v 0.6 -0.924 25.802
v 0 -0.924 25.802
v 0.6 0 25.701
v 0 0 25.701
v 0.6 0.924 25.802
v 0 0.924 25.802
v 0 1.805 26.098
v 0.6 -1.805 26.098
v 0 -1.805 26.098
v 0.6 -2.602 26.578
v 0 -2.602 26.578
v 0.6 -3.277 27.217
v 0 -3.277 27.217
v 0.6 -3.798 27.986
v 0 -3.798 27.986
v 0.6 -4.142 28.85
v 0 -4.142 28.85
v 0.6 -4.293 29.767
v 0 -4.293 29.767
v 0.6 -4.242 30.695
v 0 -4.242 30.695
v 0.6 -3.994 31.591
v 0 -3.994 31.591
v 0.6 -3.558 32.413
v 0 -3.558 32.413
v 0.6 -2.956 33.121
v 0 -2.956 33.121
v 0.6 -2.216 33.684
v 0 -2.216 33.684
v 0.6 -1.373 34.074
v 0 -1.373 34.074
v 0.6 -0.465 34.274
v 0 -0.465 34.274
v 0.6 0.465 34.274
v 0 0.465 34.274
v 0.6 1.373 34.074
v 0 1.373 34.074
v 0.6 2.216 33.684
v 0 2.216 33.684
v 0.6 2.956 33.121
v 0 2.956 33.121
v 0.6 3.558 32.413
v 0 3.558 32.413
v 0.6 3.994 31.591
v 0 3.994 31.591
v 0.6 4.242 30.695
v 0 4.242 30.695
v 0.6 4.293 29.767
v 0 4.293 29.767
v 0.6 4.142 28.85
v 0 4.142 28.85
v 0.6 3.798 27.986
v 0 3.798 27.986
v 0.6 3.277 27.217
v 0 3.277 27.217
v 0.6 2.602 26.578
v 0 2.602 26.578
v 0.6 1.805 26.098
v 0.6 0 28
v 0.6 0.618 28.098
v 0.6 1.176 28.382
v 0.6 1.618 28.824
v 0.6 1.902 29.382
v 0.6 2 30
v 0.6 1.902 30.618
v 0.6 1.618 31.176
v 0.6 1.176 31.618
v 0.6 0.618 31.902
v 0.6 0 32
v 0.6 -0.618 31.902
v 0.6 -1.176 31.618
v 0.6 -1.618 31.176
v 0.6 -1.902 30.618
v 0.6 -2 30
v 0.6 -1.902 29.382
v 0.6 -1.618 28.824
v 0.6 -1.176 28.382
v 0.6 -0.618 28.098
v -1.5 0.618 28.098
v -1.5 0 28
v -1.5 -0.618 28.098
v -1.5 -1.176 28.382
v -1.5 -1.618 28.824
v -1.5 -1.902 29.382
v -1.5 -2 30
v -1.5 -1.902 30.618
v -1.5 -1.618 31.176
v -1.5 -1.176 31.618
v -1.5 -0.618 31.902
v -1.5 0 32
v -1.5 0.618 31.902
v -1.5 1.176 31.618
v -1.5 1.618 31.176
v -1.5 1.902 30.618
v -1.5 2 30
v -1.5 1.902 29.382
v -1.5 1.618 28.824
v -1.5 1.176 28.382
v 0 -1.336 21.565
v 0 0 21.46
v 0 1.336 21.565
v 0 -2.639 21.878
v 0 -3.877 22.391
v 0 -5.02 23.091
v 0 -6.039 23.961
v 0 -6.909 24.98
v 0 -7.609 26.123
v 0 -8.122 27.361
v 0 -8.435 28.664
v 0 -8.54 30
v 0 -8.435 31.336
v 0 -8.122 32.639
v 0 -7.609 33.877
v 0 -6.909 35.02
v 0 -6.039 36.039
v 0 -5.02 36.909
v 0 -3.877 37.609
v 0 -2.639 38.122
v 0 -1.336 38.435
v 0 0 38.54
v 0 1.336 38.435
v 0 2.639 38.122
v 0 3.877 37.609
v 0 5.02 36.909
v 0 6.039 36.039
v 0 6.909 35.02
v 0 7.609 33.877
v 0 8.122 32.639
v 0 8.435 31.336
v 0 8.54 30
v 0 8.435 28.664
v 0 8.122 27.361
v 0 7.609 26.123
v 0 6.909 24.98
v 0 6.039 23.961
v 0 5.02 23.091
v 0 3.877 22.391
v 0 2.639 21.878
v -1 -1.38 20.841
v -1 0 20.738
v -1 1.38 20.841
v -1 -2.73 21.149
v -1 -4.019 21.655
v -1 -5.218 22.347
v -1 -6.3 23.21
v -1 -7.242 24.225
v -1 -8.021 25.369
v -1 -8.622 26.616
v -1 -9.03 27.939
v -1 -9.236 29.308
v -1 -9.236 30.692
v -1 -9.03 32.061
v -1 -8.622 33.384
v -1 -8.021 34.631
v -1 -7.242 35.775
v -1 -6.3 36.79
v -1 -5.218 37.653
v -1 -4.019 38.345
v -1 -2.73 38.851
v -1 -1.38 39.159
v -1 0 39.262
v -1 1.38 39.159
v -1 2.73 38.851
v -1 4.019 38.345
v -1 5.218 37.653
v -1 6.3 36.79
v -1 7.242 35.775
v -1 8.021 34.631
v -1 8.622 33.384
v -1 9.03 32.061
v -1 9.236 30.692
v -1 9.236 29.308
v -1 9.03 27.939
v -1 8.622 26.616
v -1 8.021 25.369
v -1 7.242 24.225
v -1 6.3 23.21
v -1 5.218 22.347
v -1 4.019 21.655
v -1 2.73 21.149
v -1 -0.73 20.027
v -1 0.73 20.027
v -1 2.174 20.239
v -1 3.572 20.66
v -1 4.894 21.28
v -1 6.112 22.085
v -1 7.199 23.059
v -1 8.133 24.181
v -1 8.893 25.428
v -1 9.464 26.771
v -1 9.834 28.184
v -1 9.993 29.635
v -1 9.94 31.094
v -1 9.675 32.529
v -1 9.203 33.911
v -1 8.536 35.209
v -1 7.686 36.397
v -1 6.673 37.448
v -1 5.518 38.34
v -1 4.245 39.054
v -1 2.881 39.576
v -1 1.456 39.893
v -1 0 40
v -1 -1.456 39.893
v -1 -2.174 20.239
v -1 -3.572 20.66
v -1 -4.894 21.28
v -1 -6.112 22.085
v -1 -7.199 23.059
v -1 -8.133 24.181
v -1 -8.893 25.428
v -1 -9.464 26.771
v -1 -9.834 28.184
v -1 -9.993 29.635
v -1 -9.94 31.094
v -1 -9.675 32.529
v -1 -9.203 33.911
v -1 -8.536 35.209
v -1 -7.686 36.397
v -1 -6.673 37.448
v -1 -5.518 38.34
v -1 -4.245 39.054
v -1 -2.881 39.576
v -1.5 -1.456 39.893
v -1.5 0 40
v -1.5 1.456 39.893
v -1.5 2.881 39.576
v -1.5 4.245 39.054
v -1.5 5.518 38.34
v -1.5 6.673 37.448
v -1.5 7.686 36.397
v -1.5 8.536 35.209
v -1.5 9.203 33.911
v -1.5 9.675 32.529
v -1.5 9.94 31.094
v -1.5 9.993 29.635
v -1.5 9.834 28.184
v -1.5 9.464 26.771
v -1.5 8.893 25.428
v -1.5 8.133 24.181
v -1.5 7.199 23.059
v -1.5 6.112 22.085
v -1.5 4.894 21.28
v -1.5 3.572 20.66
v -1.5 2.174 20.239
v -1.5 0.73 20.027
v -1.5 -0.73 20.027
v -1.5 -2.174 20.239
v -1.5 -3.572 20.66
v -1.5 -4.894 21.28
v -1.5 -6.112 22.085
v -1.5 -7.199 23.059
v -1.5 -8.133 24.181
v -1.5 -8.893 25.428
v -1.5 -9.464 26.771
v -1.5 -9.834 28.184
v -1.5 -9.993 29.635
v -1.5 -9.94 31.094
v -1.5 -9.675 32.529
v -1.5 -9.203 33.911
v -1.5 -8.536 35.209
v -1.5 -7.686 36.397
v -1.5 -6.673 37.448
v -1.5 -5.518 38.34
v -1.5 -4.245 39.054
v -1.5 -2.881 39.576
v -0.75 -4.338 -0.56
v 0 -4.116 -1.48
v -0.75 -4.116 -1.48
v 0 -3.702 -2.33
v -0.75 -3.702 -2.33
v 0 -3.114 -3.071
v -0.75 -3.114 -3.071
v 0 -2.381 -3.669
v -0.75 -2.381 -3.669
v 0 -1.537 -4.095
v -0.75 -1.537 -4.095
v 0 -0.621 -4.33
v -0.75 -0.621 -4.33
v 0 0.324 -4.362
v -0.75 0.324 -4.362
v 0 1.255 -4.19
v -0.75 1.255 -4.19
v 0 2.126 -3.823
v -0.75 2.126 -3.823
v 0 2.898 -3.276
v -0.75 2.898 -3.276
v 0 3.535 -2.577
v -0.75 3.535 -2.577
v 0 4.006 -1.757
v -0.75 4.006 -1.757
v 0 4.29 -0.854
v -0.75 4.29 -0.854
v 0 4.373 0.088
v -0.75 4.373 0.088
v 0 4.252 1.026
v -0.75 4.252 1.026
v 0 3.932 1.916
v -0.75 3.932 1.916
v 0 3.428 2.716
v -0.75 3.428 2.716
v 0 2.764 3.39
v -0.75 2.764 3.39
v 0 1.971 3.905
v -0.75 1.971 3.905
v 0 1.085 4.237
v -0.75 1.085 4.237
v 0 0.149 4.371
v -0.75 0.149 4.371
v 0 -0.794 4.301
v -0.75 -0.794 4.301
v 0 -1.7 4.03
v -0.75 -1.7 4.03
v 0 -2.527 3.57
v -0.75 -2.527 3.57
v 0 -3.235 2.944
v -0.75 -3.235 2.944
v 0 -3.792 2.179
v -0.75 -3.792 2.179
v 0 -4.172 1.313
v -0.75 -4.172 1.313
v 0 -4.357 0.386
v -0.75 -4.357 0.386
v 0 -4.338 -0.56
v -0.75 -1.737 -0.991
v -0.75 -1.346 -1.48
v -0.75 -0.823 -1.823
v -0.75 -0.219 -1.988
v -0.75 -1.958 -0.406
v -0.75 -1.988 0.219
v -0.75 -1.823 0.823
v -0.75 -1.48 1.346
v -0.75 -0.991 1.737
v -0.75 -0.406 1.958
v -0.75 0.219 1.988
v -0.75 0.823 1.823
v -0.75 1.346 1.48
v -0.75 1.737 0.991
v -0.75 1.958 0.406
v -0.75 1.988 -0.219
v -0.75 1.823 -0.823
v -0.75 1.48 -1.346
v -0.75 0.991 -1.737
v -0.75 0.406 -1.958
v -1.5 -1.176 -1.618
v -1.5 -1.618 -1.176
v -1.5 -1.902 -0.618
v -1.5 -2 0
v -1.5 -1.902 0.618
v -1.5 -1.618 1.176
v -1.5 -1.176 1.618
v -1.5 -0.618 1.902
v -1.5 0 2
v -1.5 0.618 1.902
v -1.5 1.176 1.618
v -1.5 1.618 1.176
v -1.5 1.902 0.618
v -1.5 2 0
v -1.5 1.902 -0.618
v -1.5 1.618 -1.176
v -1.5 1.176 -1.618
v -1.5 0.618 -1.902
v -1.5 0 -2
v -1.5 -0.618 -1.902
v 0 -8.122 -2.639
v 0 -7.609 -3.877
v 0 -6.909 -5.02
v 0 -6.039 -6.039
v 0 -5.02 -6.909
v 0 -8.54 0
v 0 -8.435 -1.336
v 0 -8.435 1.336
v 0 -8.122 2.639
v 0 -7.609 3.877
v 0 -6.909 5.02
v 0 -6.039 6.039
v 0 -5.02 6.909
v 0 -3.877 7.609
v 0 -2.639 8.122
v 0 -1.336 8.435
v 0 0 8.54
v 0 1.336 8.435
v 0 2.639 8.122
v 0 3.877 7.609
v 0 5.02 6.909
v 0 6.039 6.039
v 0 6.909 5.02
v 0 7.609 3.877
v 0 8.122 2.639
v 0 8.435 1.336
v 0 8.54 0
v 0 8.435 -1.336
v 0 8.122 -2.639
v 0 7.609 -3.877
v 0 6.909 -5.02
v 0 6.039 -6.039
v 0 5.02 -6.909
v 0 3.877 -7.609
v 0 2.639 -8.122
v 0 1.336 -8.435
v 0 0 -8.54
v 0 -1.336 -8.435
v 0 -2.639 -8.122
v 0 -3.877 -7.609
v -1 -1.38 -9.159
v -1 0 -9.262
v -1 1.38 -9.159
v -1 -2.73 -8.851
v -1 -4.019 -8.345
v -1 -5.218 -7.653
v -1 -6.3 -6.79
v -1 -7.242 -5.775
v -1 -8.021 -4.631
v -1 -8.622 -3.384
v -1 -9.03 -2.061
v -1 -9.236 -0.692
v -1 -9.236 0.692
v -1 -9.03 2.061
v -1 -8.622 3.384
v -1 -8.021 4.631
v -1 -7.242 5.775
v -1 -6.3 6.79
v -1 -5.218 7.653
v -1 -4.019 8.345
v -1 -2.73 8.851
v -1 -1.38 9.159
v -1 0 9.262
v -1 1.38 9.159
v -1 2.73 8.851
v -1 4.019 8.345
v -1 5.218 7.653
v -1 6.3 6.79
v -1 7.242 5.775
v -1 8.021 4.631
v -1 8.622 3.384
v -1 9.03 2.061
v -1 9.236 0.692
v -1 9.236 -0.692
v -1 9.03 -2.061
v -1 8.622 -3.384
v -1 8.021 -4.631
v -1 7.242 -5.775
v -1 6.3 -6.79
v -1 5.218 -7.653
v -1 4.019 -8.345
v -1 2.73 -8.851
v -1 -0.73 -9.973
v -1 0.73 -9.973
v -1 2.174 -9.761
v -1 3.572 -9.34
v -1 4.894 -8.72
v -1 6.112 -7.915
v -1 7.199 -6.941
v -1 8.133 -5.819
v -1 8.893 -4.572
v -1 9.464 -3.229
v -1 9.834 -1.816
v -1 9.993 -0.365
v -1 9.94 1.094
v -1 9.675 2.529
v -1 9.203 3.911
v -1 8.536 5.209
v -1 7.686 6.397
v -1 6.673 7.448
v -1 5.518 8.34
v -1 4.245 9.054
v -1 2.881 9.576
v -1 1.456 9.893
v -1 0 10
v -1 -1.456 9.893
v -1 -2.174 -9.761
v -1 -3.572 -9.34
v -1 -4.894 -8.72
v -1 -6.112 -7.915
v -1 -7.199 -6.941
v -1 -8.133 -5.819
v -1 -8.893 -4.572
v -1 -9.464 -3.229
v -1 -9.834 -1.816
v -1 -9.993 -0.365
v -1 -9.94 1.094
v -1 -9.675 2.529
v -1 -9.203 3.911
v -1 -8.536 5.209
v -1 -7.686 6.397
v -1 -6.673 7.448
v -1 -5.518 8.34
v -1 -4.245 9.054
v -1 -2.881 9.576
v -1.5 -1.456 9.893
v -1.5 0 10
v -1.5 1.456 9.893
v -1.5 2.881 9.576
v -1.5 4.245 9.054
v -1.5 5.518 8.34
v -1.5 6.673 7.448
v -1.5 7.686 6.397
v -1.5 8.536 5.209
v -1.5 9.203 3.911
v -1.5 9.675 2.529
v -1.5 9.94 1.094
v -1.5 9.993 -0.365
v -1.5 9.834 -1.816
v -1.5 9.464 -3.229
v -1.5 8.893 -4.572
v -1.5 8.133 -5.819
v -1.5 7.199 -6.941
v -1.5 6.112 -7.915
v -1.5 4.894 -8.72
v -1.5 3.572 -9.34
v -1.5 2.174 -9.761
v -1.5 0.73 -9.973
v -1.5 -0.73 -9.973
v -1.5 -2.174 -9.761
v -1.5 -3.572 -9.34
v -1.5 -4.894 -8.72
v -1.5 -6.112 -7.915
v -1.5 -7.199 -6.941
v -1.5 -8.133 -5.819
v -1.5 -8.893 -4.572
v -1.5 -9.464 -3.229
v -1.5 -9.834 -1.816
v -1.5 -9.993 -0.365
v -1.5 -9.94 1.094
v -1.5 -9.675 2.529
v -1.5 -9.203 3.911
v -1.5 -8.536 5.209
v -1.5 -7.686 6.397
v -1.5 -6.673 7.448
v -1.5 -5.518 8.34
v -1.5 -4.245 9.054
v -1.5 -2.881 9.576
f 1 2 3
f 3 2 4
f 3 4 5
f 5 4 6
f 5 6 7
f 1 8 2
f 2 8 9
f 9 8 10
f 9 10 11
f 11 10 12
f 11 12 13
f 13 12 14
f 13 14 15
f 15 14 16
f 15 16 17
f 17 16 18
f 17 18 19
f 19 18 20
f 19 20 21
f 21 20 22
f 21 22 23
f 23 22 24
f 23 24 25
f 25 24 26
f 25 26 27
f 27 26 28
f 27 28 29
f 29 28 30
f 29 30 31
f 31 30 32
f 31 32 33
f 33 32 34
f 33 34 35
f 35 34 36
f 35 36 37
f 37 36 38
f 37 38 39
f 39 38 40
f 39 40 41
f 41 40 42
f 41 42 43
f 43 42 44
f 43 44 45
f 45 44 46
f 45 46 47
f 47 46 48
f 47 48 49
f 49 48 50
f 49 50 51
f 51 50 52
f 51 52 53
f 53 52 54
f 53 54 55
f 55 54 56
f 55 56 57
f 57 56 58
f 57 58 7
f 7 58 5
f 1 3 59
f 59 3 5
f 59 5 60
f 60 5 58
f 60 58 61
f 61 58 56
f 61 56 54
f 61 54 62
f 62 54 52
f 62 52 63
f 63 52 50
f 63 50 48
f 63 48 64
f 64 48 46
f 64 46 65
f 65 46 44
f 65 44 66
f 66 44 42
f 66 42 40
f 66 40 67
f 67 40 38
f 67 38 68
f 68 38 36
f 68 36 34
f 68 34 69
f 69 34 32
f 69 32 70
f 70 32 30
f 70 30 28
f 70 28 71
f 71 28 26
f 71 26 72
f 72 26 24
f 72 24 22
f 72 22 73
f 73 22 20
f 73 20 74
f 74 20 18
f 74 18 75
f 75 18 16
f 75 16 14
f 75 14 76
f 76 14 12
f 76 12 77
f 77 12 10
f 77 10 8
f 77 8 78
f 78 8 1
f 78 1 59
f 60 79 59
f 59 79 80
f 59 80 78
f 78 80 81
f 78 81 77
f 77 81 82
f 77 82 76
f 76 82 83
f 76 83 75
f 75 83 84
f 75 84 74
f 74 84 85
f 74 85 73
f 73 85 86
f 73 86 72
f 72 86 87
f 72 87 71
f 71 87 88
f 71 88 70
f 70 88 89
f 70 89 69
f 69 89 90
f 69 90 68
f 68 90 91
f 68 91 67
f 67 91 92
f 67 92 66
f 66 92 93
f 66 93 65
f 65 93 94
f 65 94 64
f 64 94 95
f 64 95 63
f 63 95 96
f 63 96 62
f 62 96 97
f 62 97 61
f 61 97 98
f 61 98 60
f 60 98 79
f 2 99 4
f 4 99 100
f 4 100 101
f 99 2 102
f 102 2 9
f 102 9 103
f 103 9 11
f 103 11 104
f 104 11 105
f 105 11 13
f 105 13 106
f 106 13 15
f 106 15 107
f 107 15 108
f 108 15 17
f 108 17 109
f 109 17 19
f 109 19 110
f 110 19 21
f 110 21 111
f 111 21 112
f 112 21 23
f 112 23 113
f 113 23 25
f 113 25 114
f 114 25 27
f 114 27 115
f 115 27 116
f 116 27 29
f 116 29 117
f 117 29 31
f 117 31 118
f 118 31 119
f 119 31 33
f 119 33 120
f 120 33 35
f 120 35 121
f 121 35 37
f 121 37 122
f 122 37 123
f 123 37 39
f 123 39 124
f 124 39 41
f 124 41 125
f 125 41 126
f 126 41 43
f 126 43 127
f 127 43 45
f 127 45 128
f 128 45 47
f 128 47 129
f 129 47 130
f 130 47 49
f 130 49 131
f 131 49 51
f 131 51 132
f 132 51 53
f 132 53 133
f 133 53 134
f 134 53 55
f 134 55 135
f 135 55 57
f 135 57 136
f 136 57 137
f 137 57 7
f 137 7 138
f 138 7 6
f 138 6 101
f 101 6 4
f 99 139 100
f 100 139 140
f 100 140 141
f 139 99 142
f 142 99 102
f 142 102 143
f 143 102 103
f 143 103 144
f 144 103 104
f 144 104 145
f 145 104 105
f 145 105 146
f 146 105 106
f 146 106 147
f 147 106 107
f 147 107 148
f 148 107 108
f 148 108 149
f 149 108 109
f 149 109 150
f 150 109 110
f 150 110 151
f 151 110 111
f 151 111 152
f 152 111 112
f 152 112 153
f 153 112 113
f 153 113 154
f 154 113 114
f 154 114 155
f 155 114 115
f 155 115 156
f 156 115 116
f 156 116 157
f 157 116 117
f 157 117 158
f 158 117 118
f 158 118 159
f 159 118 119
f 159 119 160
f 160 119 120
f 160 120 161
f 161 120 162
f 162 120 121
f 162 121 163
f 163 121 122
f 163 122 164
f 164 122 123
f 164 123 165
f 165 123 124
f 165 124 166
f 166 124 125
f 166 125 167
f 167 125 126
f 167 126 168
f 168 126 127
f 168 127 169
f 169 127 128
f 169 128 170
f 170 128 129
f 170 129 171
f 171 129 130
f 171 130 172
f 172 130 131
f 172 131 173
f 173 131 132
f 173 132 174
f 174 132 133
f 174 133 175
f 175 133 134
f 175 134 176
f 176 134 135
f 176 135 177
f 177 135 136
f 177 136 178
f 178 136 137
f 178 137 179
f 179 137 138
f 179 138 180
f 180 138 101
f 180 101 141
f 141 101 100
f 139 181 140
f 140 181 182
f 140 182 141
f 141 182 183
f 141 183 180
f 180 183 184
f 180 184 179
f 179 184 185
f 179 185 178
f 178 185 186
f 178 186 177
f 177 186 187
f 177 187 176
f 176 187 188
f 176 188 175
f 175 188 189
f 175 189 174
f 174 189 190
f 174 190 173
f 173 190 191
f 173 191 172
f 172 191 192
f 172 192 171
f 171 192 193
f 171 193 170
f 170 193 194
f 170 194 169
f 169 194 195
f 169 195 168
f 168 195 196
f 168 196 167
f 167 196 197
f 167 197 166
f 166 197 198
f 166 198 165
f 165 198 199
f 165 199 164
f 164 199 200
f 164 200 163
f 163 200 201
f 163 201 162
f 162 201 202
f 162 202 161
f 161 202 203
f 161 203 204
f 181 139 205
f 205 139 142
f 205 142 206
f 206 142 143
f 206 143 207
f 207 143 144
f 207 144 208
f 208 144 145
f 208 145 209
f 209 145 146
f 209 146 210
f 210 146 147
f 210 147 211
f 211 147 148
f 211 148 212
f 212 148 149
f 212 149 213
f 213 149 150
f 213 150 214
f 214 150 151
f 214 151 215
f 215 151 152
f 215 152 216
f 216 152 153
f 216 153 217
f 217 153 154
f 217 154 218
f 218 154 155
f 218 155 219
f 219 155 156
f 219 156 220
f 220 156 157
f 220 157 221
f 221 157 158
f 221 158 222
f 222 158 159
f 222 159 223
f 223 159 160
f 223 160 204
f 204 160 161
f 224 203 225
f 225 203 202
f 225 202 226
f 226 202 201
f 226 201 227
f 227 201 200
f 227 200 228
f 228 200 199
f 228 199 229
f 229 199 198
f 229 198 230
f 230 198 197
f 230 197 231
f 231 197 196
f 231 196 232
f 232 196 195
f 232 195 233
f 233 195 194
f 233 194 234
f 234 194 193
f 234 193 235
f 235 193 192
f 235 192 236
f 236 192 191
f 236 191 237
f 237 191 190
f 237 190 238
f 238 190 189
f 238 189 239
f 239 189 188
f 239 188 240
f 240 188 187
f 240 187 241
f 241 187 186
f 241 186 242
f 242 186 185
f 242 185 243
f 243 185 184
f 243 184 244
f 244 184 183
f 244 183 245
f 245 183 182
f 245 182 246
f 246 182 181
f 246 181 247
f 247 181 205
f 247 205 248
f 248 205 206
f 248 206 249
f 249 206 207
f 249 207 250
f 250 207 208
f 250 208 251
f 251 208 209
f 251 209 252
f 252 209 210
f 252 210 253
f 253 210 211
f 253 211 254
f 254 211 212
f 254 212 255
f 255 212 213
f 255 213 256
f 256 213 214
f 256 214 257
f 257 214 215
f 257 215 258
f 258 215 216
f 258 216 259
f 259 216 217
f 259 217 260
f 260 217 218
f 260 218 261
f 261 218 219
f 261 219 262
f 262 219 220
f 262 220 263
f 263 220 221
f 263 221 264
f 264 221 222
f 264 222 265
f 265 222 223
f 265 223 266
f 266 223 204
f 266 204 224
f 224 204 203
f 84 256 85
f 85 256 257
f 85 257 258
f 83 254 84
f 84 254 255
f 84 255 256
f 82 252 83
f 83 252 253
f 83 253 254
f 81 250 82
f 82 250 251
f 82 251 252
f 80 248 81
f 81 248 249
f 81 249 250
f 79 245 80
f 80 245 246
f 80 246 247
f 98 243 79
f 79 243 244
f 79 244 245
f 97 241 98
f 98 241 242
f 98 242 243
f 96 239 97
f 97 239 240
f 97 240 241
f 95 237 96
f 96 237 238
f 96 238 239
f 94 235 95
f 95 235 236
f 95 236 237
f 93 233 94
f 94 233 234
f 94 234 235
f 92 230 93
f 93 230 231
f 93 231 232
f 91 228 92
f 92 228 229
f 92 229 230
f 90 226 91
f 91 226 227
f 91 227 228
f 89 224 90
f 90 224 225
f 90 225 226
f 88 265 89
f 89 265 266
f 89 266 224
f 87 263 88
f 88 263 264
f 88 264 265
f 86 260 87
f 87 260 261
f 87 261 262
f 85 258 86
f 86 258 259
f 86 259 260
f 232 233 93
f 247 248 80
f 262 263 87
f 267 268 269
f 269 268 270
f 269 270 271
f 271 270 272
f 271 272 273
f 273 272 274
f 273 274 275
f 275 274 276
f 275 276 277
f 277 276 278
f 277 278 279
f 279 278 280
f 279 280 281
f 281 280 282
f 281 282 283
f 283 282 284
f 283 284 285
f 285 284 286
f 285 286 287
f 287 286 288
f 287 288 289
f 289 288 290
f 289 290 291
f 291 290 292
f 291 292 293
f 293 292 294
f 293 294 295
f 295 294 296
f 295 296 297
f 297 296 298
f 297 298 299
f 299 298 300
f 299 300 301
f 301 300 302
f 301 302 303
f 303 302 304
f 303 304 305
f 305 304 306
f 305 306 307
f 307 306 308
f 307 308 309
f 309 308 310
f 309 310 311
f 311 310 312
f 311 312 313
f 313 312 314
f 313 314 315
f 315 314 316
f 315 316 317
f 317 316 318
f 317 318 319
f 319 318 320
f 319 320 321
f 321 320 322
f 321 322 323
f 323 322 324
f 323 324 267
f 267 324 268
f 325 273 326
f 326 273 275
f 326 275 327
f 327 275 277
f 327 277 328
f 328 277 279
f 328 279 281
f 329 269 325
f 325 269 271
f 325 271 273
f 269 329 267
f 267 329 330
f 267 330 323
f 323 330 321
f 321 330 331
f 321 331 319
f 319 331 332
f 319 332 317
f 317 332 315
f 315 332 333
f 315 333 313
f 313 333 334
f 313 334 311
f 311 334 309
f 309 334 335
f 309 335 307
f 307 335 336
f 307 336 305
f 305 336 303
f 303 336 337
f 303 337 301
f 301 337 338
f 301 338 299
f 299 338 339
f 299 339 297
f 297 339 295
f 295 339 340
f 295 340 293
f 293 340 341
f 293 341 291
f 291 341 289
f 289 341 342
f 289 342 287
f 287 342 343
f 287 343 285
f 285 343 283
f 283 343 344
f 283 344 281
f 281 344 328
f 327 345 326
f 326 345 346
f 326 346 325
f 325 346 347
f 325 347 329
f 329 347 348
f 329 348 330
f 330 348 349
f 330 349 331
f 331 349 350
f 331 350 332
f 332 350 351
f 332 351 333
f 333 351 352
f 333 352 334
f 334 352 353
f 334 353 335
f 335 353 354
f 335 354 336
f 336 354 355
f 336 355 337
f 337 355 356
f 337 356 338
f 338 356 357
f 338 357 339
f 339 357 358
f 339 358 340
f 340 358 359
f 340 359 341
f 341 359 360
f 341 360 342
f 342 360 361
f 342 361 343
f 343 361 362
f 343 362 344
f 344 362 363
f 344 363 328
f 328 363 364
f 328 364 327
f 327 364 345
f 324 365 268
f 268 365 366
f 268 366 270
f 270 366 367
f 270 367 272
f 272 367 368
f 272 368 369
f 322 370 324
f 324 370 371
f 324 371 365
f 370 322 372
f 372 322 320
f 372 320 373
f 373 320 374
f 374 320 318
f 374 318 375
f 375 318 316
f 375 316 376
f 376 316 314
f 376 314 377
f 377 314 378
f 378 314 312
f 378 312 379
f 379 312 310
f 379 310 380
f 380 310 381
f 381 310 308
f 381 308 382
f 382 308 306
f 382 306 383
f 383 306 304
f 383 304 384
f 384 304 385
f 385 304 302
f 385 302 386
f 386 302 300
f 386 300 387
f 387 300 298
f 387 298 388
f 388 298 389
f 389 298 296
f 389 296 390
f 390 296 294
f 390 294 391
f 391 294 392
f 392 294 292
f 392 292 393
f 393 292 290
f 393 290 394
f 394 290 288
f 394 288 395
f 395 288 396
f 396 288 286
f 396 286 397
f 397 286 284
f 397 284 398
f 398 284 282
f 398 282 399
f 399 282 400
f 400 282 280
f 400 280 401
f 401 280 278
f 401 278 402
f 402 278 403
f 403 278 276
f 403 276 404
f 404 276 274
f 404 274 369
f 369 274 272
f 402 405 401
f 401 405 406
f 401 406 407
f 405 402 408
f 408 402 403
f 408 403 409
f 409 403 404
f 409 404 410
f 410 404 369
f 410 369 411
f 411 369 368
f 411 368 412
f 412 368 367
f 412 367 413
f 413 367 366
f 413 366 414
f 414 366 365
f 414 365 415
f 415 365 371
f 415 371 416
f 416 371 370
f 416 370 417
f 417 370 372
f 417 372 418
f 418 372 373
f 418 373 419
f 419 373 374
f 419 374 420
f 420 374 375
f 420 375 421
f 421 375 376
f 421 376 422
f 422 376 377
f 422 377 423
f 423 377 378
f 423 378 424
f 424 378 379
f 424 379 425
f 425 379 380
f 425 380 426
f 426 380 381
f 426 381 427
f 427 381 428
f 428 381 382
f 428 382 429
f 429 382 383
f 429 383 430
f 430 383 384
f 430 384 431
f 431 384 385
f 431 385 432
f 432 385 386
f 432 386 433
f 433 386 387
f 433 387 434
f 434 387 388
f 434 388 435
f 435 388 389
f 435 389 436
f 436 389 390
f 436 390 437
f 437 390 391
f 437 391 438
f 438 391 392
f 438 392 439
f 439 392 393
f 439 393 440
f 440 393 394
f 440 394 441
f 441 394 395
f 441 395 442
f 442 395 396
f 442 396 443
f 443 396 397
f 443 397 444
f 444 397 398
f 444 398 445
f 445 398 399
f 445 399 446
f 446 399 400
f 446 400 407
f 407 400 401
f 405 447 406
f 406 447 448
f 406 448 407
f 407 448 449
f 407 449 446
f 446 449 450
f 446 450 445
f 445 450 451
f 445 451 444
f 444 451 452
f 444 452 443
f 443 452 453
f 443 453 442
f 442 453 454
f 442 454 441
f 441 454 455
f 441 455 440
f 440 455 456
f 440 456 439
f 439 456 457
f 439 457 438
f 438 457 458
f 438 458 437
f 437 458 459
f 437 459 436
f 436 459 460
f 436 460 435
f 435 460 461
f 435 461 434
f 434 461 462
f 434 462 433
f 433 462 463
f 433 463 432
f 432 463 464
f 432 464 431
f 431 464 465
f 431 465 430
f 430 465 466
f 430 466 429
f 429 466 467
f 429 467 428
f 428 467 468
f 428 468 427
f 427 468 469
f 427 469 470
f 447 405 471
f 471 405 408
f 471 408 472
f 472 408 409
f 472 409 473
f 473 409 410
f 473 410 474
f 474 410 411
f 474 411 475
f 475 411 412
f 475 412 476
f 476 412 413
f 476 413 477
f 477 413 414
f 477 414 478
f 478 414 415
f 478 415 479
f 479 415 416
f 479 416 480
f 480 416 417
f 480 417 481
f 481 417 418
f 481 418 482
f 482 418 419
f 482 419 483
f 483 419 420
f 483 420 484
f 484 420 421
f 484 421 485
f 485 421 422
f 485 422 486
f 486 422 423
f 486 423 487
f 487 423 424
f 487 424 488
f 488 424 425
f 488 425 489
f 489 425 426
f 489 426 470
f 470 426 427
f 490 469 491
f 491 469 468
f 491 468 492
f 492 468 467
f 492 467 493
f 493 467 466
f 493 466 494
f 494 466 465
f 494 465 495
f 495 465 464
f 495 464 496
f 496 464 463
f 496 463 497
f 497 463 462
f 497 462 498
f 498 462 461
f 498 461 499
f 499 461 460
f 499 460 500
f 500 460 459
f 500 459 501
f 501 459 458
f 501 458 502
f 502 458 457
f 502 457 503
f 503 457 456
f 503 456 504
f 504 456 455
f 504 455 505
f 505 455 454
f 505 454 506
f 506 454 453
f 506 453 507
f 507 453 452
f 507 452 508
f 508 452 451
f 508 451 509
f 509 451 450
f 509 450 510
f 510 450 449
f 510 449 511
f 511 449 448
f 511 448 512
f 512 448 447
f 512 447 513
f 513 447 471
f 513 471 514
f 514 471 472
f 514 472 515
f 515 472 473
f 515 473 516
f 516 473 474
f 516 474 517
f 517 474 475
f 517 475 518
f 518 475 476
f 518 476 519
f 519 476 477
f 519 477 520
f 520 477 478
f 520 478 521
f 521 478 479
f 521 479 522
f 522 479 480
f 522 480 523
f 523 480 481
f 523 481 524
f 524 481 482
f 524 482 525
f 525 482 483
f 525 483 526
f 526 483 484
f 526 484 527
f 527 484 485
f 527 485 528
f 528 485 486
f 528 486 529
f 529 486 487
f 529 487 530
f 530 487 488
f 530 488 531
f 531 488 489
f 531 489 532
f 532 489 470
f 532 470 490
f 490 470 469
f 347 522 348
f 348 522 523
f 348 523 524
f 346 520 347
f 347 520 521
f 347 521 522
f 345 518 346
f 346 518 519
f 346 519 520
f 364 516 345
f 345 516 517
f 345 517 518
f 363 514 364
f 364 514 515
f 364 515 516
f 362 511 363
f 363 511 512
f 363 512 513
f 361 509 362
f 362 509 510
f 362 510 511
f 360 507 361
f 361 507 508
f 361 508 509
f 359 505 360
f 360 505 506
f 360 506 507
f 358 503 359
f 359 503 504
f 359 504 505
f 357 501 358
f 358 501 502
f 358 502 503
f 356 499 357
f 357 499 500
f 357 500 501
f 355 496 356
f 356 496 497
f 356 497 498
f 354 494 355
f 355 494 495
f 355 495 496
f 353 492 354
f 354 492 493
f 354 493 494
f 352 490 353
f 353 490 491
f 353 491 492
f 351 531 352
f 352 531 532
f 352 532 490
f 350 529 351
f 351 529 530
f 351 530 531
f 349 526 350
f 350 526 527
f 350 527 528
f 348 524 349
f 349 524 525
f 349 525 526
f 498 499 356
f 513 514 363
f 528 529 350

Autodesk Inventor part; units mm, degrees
ref_plane "XY Plane" through (0, 0, 0) normal (0, 0, 1) x (1, 0, 0)
sketch "Sketch1" plane through (0, 0, 0) normal (1, 0, 0) x (0, 1, 0)
  circle A0 centre (0, 0) radius 8.5399
  dimension "d0" = 17.0798
extrude "Extrusion1" add sketch "Sketch1" along normal mid plane 2
sketch "Sketch2" plane through (-1, 0, 0) normal (-1, 0, 0) x (0, 0, 1)
  circle A0 centre (0, 0) radius 10
  dimension "d41" = 20
extrude "Extrusion2" add sketch "Sketch2" along normal blind 0.5
sketch "Sketch3" plane through (-1.5, 0, 0) normal (-1, 0, 0) x (0, 0, 1)
  point P0 (0, 0)
sketch "Sketch5" plane through (0, 0, 0) normal (0, 1, 0) x (-1, 0, 0)
  circle A0 centre (0, -0.6447) radius 0.3263
  line L0 (-1.5, 0) -> (1.5, 0)
  circle A1 centre (0, 0.6447) radius 0.3263
  point P0 (0, 0)
sketch "Sketch6" plane through (0, 0, 0) normal (0, 1, 0) x (-1, 0, 0)
  line L0 (1, -8.5399) -> (1, 8.5399) projected
  line L1 (1, -8.5399) -> (-1, -8.5399) projected
  line L2 (0, -8.5399) -> (1, -5.5929)
  line L3 (1, -10) -> (1, 10) projected
  line L4 (0, -8.5399) -> (-1, -9.2623)
  line L5 (-1, -9.2623) -> (-1, -8.5399)
  line L6 (1, -8.5399) -> (1, -9.2623)
  line L7 (-2.6263, 0) -> (3.0126, 0)
  line L8 (-1, -9.2623) -> (-1, -8.5399)
  line L9 (0, -8.5399) -> (1, -8.5399)
  point P0 (0, 0)
revolve "Revolution1" add sketch "Sketch6" angle 360 about axis through (2.6263, 0, 0) along (-1, 0, 0) contours L4 L5 L1
mirror "Mirror3" about plane through (0, 0, 0) normal (1, 0, 0) of "Revolution1"
sketch "Sketch7" plane through (0, 0, 0) normal (0, 1, 0) x (-1, 0, 0)
  line L0 (-5.9098, -10.3165) -> (0, -10.3165)
  line L1 (0, -10.3165) -> (0, 11.166)
  line L2 (0, 11.166) -> (-5.9098, 11.166)
  line L3 (-5.9098, 11.166) -> (-5.9098, -10.3165)
  point P0 (0, 0)
extrude "Extrusion6" cut sketch "Sketch7" along normal mid plane 24.5
sketch "Sketch8" plane through (0, 0, 0) normal (1, 0, 0) x (0, 1, 0)
  circle A0 centre (0, 0) radius 2
  dimension "d15" = 4
extrude "Extrusion7" cut sketch "Sketch8" against normal through all
sketch "Sketch9" plane through (0, 0, 0) normal (1, 0, 0) x (0, 0, -1)
  circle A0 centre (0, 0) radius 4.374
  line L0 (1.4796, -4.1161) -> (1.4796, -1.3457)
  circle A1 centre (0, 0) radius 2 projected
  arc A2 (1.4796, -1.3457) -> (-1.4796, -1.3457) centre (0, 0) ccw
  line L1 (0.971, -8.4845) -> (0.971, 2) projected
  line L2 (-1.4796, -4.1161) -> (-1.4796, -1.3457)
  line L3 (-0.971, 2) -> (-0.971, -8.4845) projected
  point P0 (0.971, -4.7727)
  point P1 (0, 2)
  point P2 (0, 2)
  point P3 (-0.971, -4.7727)
  point P4 (-1.4796, -1.3457)
  point P5 (0.971, -7.875)
  point P6 (-0.971, -7.875)
  dimension "d22" = 0.5086
  dimension "d23" = 0.5086
  dimension "d36" = 8.7479
extrude "Extrusion8" cut sketch "Sketch9" against normal blind 0.75 contours A0 L0 A1 L2 | L2 A1 L3 A0 | A0 L1 A1 L0 | L3 A1 L1 A0
pattern_linear "Rectangular Pattern3" count 2 spacing 30 along (0, 0, 1) of "Extrusion1", "Extrusion2", "Revolution1", "Extrusion6", "Extrusion7", "Mirror3"
sketch "Sketch10" plane through (0, -4.7727, 20.971) normal (1, 0, 0) x (0, 0, -1)
  arc A0 (-9.029, 6.7727) -> (-9.029, 6.7727) centre (-9.029, 4.7727) ccw projected
  circle A1 centre (-9.029, 4.7727) radius 2
  circle A2 centre (-9.029, 4.7727) radius 4.299
  point P0 (20.971, 4.7727)
  point P1 (1.942, 0)
  point P2 (0, 0)
  dimension "d44" = 8.5979
extrude "Extrusion9" add sketch "Sketch10" along normal blind 0.6
sketch "Sketch11" plane through (0, 0, 0) normal (1, 0, 0) x (0, 0, 1)
  line L0 (-15.9707, 13.7758) -> (17.9357, 13.7758)
  line L1 (17.9357, 13.7758) -> (17.9357, -12.8142)
  line L2 (17.9357, -12.8142) -> (-15.9707, -12.8142)
  line L3 (-15.9707, -12.8142) -> (-15.9707, 13.7758)
  point P0 (0, 0)
ref_plane "Work Plane7" through (0, 0, 30) normal (1, 0, 0) x (0, 1, 0)
equation "\"tolerancia\" = 0.15"
properties part number "Polea_pulgar_falange1"
